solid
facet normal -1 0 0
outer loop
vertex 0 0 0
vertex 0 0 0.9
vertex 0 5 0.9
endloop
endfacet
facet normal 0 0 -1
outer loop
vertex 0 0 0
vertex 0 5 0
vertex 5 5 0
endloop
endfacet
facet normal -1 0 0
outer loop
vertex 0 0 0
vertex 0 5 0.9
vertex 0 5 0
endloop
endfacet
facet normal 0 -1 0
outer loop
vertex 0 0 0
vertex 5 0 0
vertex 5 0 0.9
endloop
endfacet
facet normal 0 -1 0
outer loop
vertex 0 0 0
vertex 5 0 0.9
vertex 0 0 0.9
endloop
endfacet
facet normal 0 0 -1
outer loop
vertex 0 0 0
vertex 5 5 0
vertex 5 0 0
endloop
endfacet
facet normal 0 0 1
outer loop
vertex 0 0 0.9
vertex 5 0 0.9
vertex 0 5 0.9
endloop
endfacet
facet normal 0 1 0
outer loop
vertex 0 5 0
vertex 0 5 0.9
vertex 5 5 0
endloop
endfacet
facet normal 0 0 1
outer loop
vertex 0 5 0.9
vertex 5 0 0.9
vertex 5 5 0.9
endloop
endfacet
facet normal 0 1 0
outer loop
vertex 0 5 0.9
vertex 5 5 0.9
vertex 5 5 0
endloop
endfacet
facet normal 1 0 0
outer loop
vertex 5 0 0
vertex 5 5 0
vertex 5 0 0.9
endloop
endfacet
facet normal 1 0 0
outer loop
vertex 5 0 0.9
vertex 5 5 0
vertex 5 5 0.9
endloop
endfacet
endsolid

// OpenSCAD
/* Warning, this is a very basic generator with a lot of approximation 
input data : [VQFN, ZQX, 5x5x0.9mm, 40, , A, C04-00513A]
generated by com.zoubworld.electronics.cad.model3d.Basic
Date : Sun Feb 15 10:50:48 CET 2026
*/

//body
color("black")
translate([0,0,0])
cube([5.0,5.0,0.9], center=false);
